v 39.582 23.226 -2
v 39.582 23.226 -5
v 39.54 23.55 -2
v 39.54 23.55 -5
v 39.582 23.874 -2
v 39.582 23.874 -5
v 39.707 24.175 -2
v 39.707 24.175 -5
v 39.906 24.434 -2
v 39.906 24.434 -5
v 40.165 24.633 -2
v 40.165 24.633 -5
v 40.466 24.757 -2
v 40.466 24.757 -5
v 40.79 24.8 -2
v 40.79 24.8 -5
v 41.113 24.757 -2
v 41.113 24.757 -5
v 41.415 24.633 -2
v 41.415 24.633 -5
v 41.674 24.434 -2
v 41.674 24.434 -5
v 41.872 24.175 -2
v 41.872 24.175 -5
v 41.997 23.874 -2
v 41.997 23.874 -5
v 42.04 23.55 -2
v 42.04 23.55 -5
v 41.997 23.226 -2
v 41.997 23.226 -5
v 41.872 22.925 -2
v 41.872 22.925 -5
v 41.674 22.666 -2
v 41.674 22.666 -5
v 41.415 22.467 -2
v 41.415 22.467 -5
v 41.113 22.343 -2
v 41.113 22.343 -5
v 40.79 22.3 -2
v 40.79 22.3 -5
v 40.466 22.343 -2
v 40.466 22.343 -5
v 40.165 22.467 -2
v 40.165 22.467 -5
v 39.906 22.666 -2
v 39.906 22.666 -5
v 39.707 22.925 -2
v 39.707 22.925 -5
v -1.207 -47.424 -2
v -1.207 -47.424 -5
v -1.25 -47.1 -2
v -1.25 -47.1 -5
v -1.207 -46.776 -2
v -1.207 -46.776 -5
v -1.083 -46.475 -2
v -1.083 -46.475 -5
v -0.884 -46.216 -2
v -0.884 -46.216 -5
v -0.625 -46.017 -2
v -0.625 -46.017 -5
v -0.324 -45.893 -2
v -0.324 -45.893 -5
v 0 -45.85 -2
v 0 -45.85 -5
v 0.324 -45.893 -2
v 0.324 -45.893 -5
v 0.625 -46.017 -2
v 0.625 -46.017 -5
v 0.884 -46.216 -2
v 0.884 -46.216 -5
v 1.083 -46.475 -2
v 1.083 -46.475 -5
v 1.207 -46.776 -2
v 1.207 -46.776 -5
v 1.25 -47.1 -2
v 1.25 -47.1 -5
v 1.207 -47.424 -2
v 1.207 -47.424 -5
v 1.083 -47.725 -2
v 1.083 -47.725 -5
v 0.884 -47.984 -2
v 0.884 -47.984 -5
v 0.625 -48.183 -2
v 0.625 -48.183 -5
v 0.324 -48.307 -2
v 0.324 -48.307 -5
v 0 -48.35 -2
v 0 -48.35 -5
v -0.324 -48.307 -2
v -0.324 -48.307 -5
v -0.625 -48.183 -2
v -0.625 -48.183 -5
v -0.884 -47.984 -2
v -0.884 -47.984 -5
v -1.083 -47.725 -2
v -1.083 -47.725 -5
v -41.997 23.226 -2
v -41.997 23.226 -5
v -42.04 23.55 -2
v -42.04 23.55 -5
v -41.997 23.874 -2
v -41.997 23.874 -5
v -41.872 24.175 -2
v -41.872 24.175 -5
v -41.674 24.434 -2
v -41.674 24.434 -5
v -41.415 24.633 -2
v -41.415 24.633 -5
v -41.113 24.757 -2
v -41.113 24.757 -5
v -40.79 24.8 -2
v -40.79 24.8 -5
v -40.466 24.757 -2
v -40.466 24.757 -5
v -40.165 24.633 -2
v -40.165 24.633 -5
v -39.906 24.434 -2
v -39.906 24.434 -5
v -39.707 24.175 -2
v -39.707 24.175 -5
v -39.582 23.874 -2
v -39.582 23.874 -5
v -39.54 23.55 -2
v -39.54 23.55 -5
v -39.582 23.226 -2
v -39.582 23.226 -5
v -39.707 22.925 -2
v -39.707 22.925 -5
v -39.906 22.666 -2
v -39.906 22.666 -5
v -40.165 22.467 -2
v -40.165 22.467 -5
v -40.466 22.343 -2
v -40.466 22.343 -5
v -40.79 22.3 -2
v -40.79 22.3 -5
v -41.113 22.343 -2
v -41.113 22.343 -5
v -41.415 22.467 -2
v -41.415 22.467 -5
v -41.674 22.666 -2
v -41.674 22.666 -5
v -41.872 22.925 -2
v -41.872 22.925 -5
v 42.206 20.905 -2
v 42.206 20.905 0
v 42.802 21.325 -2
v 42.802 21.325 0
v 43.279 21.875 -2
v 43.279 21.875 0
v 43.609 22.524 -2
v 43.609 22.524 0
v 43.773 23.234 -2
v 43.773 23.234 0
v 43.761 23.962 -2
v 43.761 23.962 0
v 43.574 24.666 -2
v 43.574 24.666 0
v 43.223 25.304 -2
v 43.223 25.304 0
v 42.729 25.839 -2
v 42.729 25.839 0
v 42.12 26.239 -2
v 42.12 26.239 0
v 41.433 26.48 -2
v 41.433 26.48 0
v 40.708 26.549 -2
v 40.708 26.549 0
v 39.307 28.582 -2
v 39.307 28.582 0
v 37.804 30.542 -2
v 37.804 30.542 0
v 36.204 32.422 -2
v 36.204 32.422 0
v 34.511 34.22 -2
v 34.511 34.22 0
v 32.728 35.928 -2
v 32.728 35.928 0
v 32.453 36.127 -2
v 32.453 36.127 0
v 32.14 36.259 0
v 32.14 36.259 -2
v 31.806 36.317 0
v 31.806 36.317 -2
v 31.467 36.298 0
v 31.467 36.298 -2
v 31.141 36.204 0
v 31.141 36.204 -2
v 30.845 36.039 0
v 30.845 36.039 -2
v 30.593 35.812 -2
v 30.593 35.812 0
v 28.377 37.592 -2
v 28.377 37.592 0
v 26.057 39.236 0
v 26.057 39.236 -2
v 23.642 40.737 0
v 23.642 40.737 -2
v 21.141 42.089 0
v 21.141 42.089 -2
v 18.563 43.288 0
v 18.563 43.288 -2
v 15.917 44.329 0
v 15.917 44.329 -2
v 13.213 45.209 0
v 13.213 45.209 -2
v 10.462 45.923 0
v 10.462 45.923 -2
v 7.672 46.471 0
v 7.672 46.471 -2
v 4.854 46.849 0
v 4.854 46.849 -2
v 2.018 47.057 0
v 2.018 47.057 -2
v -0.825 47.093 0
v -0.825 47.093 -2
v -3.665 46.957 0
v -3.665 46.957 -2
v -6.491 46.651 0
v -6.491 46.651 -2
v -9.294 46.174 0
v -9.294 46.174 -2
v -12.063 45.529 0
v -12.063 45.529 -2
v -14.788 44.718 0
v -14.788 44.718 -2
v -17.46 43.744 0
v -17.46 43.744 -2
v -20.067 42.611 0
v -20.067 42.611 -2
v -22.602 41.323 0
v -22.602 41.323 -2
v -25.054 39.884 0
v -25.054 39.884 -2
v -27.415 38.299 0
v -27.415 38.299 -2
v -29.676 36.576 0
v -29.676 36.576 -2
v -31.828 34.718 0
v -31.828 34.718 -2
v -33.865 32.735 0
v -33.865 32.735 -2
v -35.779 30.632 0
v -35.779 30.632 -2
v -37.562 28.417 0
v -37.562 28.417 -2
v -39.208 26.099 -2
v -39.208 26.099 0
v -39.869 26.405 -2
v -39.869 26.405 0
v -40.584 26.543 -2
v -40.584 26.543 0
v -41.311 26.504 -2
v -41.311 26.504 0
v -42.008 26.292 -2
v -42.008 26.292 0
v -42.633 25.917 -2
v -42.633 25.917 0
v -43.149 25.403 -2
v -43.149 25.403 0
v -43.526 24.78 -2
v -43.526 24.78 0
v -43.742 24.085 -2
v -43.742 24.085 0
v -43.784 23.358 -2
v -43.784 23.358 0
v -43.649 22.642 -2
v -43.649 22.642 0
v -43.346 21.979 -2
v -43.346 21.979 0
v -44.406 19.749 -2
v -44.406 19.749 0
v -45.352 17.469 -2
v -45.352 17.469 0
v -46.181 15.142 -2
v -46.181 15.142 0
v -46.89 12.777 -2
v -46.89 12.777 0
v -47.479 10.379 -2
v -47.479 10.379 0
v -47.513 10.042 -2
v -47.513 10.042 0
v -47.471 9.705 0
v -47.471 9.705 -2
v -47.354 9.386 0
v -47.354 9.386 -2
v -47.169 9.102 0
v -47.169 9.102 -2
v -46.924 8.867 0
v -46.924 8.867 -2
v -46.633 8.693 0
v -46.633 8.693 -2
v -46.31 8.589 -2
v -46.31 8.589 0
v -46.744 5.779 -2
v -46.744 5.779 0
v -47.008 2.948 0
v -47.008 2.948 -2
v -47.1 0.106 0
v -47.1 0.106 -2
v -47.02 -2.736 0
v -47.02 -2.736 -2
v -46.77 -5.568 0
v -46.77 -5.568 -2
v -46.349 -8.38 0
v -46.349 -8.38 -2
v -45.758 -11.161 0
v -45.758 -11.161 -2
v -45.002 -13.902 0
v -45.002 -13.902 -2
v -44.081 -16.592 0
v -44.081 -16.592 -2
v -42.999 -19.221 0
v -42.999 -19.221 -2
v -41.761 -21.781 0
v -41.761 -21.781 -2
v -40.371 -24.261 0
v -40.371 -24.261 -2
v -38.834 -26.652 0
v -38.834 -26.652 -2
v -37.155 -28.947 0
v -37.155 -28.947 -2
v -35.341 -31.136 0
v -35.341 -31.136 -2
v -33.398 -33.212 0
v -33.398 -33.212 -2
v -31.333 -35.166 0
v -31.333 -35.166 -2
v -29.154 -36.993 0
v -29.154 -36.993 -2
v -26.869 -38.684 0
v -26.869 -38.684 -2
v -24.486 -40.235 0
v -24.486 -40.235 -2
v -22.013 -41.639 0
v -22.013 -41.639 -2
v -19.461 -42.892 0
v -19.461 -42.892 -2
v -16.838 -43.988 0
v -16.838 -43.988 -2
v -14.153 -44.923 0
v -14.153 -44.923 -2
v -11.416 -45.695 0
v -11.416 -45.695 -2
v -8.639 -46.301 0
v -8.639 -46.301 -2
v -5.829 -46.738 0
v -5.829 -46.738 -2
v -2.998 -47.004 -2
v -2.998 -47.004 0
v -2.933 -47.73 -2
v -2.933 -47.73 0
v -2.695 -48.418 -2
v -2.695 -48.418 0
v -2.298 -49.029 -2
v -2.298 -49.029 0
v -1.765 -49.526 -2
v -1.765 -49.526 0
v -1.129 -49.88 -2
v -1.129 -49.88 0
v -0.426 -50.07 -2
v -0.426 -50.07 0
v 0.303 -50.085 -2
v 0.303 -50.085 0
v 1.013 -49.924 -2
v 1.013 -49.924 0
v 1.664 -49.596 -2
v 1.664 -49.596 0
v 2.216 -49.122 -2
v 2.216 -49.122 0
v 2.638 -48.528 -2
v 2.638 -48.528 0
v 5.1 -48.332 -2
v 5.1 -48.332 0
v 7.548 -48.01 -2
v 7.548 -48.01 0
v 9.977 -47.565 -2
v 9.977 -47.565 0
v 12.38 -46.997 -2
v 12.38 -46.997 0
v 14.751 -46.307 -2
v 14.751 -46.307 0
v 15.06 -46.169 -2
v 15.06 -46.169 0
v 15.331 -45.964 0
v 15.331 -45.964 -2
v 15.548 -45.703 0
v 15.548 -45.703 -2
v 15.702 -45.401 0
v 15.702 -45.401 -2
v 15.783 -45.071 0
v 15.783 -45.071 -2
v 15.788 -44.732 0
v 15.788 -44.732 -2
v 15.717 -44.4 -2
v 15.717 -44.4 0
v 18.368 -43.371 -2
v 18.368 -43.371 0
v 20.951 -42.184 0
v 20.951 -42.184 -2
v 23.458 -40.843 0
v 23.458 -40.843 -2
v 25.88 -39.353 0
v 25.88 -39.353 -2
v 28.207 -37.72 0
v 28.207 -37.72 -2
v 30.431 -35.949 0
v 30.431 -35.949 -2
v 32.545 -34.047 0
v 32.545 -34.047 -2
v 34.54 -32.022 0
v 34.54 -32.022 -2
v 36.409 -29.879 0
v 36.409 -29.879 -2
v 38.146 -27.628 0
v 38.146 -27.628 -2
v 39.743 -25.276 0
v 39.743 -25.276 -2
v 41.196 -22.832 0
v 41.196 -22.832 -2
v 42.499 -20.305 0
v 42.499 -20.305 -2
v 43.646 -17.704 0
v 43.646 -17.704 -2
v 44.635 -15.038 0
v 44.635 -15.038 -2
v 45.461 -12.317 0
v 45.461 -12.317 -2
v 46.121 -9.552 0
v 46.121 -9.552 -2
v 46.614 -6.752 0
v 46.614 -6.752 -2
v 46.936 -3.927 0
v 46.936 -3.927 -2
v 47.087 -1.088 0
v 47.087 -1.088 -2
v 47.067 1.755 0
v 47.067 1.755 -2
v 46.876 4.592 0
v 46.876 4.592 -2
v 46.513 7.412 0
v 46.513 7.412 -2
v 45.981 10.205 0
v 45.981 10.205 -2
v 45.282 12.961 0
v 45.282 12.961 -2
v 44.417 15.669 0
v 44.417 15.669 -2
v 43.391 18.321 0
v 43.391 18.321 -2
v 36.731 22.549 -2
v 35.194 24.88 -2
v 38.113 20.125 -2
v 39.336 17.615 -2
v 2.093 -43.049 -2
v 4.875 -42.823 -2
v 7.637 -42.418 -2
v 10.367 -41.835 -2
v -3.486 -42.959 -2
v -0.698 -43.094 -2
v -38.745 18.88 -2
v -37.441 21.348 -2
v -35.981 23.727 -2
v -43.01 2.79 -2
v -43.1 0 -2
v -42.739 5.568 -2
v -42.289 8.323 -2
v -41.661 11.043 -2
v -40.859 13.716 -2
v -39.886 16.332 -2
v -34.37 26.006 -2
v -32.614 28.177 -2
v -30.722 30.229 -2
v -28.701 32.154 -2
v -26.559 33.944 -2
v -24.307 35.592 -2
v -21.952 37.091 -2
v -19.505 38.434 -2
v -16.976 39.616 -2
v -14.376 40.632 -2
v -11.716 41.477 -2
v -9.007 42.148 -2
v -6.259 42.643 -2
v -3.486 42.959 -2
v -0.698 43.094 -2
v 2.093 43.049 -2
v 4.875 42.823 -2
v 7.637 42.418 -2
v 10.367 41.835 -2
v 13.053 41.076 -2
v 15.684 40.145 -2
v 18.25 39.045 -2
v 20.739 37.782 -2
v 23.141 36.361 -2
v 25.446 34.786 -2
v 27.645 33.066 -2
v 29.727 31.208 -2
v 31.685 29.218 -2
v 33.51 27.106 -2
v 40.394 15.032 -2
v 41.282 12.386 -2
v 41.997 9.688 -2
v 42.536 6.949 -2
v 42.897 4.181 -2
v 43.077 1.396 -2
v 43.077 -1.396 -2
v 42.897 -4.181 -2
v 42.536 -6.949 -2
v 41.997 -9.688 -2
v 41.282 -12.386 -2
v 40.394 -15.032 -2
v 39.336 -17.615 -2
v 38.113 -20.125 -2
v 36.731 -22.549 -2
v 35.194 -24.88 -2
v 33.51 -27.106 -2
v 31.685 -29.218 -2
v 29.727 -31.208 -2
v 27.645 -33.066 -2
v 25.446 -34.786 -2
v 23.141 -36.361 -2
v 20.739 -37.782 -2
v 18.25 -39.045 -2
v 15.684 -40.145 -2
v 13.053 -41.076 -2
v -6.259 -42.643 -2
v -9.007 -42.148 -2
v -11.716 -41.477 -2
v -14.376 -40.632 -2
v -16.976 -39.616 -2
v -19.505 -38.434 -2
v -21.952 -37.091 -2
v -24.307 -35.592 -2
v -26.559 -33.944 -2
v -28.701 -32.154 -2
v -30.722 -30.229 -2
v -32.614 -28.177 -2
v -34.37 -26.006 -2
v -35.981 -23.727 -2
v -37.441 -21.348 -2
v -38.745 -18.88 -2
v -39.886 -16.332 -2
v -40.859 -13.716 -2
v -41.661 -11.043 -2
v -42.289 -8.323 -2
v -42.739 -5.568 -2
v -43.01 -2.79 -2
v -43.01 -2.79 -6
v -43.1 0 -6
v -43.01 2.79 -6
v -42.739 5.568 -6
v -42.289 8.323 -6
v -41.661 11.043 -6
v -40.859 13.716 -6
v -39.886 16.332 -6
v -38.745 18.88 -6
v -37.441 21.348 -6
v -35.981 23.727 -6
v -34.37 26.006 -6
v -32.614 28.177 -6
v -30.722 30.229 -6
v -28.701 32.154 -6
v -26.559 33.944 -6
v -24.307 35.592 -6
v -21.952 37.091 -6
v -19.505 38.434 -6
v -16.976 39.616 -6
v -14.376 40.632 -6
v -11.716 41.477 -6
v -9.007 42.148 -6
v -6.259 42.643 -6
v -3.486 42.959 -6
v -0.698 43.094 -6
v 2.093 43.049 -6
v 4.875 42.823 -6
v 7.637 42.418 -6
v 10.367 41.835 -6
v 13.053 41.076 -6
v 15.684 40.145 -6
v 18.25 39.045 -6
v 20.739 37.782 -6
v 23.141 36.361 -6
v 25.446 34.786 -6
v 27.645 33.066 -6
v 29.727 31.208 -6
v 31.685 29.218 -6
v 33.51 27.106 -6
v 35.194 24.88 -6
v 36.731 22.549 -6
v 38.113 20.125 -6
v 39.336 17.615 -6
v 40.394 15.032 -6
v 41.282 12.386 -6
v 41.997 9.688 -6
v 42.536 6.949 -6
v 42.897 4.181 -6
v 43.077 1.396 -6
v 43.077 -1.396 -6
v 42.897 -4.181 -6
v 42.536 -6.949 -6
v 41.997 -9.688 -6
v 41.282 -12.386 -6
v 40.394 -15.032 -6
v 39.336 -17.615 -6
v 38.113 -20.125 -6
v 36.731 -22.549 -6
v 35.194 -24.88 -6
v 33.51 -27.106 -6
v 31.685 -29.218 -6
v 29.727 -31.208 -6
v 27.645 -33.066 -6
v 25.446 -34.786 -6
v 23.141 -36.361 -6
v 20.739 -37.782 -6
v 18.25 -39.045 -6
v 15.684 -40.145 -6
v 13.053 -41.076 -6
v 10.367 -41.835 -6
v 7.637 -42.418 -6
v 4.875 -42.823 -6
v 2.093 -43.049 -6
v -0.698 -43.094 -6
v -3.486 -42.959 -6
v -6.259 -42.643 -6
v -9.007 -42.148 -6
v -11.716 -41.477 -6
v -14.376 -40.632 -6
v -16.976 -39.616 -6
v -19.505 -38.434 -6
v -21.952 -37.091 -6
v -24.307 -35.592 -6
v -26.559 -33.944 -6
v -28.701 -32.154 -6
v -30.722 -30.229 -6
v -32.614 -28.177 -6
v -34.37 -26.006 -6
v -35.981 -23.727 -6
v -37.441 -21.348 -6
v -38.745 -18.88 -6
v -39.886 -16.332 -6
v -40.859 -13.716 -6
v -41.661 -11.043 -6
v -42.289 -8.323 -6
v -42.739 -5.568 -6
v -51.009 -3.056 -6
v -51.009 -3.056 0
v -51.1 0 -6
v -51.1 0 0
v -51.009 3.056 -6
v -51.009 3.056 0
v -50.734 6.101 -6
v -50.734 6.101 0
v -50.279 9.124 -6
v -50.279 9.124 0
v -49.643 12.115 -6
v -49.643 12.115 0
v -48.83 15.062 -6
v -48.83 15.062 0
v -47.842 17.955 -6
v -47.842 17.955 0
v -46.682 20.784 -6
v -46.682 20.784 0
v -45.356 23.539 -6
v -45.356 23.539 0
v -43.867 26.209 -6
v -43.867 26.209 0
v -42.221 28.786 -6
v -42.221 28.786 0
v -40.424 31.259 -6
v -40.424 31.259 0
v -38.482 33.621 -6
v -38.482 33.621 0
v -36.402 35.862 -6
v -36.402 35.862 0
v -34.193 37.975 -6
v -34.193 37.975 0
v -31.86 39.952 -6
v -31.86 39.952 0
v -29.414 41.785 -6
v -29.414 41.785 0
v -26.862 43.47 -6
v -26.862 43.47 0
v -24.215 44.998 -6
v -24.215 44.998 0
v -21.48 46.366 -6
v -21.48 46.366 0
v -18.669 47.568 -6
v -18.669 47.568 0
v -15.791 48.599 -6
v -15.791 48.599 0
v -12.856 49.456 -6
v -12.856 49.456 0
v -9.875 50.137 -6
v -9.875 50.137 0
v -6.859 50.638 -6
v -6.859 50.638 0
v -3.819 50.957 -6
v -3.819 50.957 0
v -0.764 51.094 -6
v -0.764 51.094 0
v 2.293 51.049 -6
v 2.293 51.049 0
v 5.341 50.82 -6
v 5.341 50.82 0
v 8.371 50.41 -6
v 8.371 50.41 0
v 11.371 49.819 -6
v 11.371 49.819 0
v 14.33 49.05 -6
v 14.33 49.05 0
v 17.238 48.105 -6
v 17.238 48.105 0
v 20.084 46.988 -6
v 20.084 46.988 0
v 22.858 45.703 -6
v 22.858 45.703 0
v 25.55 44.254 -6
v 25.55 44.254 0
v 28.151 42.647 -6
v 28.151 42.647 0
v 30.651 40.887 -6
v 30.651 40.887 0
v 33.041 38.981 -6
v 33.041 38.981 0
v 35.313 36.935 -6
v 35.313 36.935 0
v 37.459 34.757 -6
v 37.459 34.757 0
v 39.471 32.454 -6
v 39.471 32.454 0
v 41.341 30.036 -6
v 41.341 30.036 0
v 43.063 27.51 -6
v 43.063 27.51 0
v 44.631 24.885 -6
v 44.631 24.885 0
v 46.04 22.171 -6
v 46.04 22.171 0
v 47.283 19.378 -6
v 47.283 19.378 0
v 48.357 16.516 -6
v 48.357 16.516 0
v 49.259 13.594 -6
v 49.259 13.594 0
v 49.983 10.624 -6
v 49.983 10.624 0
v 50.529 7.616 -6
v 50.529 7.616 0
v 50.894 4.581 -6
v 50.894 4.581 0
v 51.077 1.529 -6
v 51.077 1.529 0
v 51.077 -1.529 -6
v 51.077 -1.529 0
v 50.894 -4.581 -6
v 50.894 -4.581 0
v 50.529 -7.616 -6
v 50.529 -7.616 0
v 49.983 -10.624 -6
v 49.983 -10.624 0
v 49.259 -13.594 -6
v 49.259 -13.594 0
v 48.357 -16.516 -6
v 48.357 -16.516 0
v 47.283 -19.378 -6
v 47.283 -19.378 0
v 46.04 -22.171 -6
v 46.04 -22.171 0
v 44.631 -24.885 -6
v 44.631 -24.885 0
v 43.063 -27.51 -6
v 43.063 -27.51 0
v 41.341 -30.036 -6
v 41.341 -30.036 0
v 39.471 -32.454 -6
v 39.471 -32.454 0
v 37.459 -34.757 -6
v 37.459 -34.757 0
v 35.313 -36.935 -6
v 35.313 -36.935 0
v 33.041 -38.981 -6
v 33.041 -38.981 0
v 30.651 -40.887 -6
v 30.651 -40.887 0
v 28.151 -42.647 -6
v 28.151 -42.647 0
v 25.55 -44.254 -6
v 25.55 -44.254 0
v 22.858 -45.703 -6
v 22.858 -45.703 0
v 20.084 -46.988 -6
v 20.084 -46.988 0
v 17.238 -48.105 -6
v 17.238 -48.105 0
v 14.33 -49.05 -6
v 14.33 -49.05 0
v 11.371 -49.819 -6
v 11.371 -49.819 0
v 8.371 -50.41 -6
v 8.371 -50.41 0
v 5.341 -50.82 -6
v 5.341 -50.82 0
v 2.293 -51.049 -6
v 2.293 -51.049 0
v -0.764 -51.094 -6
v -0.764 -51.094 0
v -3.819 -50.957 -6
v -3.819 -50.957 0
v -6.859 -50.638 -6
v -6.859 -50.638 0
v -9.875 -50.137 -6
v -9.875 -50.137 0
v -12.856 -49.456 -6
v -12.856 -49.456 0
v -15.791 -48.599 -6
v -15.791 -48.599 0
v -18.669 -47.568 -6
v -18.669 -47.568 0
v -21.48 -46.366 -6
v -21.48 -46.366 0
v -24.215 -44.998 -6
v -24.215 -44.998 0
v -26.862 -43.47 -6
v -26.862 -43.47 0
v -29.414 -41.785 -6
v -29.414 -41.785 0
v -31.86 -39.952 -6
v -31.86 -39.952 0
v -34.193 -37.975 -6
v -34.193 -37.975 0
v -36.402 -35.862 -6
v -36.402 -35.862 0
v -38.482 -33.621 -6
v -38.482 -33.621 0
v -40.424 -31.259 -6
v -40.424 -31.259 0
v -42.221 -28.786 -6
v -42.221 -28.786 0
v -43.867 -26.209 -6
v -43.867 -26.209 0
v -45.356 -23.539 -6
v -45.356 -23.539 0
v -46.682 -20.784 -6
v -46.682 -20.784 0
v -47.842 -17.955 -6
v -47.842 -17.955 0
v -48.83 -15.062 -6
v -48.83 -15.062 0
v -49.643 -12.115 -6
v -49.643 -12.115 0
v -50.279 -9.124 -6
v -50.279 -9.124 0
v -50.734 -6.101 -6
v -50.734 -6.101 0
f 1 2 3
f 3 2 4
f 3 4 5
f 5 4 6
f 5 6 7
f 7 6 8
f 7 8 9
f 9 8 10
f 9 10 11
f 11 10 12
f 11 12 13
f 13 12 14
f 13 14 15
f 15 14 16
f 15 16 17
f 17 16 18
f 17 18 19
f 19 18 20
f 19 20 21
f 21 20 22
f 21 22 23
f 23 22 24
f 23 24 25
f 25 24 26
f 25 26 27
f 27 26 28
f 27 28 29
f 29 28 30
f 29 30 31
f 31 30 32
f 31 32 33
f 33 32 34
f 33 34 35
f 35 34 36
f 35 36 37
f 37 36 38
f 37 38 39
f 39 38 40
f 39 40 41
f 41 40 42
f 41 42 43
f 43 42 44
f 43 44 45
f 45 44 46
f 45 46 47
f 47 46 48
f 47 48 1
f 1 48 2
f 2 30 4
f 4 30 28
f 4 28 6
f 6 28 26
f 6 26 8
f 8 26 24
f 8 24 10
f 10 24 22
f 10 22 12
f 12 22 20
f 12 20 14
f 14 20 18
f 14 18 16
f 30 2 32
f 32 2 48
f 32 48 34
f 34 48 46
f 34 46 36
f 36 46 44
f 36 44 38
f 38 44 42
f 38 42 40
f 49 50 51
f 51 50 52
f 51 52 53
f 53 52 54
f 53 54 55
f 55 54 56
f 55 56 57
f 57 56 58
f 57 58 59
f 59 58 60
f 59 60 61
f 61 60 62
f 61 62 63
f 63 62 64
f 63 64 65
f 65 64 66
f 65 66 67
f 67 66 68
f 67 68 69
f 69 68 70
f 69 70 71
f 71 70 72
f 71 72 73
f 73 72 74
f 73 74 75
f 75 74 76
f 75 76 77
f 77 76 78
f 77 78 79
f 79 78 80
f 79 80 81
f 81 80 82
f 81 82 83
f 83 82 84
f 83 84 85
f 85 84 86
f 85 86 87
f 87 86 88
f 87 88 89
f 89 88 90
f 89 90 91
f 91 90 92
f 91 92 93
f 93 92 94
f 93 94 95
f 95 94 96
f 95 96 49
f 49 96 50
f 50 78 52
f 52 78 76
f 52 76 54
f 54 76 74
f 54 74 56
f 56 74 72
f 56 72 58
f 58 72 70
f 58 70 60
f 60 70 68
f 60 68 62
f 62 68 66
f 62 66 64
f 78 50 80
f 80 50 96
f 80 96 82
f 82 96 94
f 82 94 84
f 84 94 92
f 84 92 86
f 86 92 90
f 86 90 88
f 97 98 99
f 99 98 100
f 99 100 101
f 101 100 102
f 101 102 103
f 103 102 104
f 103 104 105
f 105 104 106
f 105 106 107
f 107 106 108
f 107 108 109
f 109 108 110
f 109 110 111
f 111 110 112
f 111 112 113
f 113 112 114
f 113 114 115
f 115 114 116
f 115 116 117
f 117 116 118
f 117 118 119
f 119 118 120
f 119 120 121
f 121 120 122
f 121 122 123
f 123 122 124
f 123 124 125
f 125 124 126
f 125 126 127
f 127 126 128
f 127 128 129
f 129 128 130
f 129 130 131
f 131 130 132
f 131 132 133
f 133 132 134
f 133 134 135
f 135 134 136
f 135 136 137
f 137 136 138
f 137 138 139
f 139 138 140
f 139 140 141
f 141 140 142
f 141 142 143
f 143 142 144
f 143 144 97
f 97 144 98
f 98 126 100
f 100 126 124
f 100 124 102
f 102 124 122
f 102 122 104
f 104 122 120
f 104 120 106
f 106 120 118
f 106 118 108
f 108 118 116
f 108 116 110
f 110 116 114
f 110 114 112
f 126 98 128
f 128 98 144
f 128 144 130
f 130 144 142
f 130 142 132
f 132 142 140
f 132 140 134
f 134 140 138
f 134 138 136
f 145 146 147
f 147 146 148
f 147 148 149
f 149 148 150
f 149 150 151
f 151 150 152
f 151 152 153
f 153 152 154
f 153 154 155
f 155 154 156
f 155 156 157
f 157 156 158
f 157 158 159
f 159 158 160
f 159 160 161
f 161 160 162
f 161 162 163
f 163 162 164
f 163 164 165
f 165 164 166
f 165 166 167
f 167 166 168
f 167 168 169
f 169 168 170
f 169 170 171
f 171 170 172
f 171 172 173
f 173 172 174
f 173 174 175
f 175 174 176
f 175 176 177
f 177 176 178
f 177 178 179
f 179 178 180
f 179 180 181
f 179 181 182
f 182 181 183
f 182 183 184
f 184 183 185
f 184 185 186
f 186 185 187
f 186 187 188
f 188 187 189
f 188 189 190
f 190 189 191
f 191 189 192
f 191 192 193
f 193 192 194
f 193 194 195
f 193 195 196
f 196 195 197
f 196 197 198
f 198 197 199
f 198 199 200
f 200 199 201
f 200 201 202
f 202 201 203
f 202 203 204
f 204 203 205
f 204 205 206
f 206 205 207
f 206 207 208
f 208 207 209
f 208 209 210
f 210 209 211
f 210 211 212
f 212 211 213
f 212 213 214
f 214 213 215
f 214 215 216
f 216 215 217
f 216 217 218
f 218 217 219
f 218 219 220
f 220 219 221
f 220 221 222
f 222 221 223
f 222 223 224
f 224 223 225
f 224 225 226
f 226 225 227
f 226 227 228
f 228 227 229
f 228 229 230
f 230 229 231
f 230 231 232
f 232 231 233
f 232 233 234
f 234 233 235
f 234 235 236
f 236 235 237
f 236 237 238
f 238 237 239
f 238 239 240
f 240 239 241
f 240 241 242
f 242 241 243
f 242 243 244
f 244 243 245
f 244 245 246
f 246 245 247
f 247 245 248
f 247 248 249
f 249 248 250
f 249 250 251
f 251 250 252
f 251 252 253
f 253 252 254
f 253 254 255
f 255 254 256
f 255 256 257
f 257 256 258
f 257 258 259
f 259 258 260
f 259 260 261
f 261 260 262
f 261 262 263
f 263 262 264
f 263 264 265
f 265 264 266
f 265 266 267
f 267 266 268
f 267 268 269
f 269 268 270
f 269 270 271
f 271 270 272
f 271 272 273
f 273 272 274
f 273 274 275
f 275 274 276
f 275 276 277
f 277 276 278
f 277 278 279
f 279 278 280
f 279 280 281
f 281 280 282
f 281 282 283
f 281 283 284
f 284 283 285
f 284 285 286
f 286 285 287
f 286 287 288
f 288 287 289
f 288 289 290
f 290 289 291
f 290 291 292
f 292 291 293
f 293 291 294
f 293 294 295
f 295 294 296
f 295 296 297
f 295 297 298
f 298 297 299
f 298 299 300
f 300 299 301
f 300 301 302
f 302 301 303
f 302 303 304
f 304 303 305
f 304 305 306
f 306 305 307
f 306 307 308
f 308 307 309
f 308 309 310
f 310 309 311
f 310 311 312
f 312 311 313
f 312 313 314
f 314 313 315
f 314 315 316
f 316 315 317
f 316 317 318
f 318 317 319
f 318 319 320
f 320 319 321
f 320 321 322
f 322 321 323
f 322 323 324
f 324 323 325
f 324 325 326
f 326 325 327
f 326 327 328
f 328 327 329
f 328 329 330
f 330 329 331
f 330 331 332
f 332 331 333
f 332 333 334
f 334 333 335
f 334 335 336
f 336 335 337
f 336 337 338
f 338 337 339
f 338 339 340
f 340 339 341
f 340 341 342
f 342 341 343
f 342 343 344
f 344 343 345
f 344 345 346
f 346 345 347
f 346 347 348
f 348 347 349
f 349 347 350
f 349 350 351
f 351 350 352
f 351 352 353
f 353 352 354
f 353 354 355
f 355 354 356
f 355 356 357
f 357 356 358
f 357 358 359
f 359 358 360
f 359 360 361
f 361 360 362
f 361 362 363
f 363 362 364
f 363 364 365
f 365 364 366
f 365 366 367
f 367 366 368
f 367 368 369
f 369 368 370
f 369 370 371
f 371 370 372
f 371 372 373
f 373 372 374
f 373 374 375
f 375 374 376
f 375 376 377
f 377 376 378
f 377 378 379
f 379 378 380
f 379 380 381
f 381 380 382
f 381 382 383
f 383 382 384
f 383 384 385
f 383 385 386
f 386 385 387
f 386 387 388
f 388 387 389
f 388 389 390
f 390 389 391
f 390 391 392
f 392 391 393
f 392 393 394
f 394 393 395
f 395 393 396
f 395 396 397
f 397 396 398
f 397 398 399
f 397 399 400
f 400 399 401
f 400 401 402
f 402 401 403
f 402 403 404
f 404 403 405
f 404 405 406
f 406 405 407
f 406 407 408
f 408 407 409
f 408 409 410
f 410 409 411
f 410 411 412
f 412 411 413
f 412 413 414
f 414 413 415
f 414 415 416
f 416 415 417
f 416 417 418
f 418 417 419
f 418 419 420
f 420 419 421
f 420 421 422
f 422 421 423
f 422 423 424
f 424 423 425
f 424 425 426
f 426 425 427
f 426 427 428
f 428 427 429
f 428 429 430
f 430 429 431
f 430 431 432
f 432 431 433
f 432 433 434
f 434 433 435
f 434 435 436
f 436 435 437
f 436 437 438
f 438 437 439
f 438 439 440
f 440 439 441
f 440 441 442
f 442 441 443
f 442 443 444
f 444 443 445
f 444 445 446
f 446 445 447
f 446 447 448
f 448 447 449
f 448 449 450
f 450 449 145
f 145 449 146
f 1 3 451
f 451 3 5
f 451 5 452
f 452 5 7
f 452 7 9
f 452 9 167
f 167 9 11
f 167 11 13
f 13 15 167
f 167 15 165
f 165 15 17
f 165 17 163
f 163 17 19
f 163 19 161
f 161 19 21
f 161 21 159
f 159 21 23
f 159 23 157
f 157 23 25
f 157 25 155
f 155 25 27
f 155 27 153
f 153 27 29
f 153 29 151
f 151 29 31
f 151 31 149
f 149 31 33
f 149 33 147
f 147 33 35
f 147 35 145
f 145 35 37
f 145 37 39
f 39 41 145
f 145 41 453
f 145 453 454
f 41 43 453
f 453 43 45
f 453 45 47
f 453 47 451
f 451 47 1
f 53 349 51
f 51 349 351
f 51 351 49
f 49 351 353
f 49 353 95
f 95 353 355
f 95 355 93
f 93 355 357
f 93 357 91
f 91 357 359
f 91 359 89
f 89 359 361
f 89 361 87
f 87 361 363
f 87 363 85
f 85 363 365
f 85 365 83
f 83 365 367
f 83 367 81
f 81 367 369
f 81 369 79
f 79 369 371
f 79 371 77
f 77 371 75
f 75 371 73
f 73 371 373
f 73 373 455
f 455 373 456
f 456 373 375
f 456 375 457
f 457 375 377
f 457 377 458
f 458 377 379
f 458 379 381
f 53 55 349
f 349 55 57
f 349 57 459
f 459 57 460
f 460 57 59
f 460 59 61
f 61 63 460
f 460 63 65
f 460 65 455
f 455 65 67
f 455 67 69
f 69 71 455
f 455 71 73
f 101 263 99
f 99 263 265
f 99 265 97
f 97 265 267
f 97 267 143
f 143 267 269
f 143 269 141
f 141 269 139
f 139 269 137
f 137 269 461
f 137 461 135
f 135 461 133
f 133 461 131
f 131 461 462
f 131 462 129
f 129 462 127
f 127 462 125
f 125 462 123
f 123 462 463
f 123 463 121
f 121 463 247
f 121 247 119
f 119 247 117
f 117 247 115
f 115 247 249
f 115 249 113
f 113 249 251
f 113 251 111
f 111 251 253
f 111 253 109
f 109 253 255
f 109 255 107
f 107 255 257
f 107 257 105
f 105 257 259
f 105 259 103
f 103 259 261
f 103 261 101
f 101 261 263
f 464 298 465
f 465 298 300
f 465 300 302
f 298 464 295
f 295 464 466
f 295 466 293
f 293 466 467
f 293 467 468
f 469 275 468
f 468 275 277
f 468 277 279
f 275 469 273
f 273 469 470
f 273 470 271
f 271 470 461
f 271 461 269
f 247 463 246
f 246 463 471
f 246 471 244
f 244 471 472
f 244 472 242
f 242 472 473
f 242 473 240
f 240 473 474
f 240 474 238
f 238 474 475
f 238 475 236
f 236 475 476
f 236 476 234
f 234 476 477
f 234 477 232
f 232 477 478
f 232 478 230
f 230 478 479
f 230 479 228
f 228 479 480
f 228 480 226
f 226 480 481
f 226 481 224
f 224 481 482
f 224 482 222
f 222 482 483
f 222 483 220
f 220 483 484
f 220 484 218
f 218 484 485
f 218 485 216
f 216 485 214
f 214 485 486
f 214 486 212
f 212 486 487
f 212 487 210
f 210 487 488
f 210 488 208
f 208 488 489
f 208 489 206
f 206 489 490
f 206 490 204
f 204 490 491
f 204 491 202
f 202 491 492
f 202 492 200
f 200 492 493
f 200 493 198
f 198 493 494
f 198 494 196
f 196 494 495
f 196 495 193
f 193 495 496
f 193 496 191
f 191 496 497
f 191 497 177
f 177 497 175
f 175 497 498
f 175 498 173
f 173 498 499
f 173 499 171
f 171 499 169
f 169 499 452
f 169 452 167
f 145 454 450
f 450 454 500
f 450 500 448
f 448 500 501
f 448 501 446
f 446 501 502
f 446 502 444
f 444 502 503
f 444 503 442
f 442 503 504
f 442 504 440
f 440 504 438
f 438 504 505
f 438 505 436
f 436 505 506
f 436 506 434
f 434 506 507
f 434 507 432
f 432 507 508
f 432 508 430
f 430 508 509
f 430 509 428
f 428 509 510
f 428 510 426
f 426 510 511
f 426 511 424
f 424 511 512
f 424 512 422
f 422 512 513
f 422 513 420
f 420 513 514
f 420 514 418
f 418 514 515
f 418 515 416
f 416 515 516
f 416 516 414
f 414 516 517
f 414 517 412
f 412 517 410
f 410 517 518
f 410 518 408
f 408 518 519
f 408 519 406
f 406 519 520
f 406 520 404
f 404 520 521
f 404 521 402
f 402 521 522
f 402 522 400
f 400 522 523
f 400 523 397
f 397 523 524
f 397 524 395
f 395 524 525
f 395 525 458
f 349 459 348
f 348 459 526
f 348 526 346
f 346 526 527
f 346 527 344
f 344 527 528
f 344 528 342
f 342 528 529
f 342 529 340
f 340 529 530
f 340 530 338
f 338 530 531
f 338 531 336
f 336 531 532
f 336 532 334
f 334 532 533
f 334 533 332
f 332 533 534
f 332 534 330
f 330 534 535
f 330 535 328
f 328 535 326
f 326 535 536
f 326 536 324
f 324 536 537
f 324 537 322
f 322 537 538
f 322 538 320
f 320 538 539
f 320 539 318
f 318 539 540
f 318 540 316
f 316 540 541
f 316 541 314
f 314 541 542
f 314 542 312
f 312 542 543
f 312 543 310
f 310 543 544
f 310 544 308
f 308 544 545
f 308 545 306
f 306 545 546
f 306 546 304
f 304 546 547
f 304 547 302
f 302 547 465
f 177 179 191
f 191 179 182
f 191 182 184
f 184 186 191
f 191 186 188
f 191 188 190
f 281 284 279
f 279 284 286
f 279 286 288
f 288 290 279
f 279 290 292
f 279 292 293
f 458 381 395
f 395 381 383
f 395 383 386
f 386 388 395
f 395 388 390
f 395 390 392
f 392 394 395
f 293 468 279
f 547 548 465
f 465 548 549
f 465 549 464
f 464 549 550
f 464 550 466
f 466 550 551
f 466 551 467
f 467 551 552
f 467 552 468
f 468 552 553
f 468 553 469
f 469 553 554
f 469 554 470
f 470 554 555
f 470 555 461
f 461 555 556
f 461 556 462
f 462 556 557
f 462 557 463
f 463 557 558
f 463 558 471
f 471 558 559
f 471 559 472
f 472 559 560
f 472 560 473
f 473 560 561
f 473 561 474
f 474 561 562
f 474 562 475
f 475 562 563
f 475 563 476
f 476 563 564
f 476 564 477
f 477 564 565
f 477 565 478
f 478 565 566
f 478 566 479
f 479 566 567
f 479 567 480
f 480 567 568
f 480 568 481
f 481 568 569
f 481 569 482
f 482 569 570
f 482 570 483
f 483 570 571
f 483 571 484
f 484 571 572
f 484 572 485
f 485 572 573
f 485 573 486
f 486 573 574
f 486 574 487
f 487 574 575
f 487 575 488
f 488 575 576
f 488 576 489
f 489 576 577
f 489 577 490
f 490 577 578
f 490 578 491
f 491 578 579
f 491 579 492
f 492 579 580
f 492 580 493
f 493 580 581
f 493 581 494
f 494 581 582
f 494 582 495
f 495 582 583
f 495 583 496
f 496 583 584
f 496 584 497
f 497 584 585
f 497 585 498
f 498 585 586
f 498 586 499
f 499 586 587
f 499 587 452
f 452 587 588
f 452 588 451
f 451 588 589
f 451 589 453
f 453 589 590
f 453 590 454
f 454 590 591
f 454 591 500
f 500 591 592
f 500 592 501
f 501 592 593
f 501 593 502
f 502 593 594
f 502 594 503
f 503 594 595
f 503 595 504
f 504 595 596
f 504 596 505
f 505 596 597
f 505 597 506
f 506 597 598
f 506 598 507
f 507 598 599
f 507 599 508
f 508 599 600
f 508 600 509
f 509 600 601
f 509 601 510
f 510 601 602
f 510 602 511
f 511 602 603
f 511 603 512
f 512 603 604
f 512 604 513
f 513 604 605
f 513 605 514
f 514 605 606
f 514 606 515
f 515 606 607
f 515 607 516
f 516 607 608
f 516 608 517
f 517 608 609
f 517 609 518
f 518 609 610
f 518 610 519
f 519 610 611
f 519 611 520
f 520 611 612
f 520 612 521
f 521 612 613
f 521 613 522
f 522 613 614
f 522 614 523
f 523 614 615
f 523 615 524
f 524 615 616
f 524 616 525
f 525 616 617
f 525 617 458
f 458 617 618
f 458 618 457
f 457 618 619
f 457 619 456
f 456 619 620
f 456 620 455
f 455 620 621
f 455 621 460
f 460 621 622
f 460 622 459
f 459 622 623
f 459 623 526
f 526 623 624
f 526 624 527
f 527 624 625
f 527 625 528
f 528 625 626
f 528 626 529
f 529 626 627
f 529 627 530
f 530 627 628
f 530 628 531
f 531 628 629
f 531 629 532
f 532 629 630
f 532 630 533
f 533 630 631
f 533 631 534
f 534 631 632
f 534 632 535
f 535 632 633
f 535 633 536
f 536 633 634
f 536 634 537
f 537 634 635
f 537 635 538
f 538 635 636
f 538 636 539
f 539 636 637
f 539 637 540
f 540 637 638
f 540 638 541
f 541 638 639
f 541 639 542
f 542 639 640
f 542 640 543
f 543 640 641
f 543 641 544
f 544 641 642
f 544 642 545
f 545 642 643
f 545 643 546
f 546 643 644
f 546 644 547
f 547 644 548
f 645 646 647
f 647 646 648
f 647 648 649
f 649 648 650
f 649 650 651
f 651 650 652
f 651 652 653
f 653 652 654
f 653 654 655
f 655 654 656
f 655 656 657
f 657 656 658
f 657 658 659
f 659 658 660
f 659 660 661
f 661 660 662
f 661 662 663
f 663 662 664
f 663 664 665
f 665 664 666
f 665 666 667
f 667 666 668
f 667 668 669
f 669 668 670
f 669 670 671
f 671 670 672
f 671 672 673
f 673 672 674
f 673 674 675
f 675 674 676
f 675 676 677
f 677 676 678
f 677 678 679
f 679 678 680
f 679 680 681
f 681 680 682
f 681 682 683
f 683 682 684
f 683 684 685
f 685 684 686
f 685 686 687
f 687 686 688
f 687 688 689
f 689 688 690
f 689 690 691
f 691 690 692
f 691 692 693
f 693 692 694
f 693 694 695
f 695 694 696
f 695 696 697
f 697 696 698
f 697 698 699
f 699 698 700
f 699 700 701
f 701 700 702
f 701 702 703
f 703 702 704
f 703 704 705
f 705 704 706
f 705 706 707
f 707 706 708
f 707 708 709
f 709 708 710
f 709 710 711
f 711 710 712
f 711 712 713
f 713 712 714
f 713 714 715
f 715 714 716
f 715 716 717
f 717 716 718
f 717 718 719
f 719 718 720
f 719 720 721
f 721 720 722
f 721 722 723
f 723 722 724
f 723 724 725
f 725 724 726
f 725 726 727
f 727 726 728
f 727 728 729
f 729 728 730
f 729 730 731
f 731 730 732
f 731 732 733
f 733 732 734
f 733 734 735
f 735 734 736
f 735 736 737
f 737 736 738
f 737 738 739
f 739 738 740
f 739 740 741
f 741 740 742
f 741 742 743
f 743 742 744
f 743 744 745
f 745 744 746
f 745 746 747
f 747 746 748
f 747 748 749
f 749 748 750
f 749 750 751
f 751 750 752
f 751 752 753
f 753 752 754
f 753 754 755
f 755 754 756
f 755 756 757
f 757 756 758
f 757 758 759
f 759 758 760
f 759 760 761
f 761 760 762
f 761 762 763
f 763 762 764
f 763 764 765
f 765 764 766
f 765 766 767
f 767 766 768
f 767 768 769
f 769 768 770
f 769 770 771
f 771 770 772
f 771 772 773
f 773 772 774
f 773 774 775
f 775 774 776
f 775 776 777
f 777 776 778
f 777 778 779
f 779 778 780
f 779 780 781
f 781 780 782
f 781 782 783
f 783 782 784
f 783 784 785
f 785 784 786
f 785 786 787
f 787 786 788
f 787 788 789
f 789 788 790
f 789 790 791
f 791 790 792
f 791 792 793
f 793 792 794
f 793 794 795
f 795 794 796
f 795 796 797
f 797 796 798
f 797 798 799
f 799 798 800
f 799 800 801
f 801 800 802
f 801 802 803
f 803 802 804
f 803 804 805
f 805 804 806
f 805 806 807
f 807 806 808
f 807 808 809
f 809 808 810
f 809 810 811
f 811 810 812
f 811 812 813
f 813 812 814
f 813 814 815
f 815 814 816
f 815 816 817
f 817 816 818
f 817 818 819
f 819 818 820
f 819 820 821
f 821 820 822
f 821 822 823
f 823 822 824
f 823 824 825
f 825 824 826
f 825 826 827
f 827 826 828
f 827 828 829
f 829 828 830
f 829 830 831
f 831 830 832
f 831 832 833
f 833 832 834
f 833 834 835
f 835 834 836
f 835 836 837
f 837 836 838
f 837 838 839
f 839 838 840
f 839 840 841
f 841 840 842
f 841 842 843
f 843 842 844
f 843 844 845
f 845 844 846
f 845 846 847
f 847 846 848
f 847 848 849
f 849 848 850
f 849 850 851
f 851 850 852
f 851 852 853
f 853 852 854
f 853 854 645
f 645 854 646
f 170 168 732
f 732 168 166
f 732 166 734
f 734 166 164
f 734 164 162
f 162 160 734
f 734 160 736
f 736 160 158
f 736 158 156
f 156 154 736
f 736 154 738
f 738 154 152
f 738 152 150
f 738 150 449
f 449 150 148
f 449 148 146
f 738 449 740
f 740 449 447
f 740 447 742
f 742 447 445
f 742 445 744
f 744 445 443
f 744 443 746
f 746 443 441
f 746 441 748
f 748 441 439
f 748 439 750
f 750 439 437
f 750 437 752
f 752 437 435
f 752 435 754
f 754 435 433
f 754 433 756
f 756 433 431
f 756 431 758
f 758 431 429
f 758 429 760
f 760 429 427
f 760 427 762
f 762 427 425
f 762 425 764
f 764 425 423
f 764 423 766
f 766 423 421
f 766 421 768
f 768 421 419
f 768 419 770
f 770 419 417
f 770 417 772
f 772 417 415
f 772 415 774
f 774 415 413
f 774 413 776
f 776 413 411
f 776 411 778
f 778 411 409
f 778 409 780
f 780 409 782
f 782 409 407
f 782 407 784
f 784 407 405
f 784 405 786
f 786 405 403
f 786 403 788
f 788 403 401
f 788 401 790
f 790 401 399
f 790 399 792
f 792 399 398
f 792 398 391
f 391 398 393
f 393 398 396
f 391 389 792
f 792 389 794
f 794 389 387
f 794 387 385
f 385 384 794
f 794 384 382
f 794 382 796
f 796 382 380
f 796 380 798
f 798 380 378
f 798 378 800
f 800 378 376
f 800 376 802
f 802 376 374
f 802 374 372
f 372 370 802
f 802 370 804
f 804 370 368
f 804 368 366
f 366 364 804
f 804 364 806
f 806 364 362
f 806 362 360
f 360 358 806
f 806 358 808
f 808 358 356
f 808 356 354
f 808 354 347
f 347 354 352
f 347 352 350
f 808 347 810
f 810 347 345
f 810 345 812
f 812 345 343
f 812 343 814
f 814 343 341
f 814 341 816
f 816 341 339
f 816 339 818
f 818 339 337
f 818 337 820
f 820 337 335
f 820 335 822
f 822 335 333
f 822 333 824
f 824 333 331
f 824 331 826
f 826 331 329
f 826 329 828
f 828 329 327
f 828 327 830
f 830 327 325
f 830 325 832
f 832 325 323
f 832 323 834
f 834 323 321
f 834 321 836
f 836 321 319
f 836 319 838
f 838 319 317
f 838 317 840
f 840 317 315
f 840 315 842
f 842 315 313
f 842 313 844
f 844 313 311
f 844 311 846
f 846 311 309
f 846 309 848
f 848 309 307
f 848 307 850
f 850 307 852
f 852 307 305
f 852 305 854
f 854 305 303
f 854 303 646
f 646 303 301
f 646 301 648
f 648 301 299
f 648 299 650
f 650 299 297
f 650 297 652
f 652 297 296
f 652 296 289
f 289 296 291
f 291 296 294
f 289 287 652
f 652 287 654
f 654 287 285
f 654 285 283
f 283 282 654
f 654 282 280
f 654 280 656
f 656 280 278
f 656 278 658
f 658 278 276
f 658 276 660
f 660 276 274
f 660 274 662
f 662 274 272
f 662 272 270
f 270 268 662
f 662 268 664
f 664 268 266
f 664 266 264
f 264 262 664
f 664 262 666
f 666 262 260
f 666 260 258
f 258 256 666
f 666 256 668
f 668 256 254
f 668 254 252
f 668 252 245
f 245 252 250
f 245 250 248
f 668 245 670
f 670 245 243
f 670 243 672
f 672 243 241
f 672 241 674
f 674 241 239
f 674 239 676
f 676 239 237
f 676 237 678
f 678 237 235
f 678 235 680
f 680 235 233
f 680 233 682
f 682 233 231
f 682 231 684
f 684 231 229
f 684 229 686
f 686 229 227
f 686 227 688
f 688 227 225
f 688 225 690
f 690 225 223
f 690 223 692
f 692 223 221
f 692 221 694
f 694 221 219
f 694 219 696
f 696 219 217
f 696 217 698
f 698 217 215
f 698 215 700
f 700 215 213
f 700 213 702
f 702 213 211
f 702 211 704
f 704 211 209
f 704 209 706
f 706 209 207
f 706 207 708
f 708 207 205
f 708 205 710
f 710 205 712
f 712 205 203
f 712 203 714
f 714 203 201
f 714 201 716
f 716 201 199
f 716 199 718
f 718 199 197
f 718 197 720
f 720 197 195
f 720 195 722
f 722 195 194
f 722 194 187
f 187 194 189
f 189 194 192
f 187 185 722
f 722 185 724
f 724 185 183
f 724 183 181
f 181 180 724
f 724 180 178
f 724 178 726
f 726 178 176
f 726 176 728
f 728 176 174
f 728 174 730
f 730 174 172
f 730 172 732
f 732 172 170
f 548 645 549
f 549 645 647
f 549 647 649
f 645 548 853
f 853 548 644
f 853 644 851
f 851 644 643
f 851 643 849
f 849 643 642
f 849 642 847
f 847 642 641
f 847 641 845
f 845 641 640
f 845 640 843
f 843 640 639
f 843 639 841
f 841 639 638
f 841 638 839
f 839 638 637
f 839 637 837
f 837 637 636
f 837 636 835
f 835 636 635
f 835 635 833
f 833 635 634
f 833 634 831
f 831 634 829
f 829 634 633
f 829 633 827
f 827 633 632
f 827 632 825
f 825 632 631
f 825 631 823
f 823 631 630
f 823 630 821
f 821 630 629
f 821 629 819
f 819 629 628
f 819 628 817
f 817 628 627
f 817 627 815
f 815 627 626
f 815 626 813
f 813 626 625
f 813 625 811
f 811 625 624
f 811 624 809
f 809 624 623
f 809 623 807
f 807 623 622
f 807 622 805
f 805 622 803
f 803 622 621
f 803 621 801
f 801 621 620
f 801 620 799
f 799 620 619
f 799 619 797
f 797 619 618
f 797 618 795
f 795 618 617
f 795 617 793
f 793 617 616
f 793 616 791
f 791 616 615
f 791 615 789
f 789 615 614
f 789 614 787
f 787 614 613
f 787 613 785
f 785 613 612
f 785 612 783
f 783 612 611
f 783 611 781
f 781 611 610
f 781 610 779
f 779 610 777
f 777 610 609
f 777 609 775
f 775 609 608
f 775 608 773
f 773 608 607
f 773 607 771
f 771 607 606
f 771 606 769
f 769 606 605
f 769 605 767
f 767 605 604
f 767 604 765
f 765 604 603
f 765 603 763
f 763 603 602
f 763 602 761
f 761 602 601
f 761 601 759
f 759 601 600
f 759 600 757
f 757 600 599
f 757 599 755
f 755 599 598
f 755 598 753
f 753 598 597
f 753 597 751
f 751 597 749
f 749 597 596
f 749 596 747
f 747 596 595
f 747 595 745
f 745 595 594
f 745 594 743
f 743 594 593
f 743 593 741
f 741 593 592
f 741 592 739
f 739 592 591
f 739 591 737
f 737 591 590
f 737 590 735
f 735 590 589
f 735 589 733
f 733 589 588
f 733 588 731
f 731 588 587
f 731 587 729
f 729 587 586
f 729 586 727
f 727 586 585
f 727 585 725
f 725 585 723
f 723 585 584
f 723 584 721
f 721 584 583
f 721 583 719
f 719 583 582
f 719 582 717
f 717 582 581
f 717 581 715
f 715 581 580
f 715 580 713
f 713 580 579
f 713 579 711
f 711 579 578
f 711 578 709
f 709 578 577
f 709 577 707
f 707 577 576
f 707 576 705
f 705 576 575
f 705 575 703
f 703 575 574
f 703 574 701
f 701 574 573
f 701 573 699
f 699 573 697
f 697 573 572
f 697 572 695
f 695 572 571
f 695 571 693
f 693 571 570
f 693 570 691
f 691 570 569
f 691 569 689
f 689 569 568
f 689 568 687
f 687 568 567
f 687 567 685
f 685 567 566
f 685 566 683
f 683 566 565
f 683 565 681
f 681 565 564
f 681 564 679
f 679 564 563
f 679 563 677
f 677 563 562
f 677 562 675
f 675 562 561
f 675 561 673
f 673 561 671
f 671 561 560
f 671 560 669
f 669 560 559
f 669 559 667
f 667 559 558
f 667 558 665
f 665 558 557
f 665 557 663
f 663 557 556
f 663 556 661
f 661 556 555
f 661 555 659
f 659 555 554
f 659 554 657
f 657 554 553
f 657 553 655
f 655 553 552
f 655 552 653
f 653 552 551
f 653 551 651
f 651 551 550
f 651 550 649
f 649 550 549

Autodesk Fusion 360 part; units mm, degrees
sketch "草图1" plane through (0, 0, 0) normal (0, 0, 1) x (1, 0, 0)
  line L0 (0.9, -43.0906) -> (0.9, -43.1)
  arc A0 (2.5554, -45.5283) -> (2.6381, -48.5283) centre (0, -47.1) ccw
  line L1 (28.4627, -32.3648) -> (28.4702, -32.3737)
  arc A1 (14.7507, -46.3074) -> (13.8402, -43.4489) centre (14.2954, -44.8782) ccw
  line L2 (30.5781, -30.3742) -> (30.6917, -30.5096)
  arc A2 (2.6381, -48.5283) -> (14.7507, -46.3074) centre (0, 0) ccw
  line L3 (42.2601, -8.467) -> (42.2716, -8.469)
  circle A3 centre (0, 0) radius 43.1
  line L4 (11.0158, 41.6685) -> (11.0763, 41.8346)
  arc A4 (-47.4788, 10.3792) -> (-44.548, 9.7385) centre (-46.0134, 10.0589) ccw
  circle A5 centre (40.7898, 23.55) radius 1.25
  line L5 (-11.0158, 41.6685) -> (-11.0763, 41.8346)
  line L6 (-36.8676, 22.3247) -> (-36.8757, 22.3294)
  line L7 (36.8676, 22.3247) -> (36.8757, 22.3294)
  line L8 (-13.7974, 40.8319) -> (-13.8014, 40.8428)
  circle A6 centre (0, 0) radius 47.1 construction
  line L9 (41.5939, -11.2943) -> (41.768, -11.325)
  arc A7 (38.151, 24.9772) -> (30.7078, 33.7104) centre (0, 0) ccw
  arc A8 (-43.3459, 21.9795) -> (-47.4788, 10.3792) centre (0, 0) ccw
  line L10 (-41.5939, -11.2943) -> (-41.768, -11.325)
  line L11 (-28.4627, -32.3648) -> (-28.4702, -32.3737)
  line L12 (-37.7676, 20.7659) -> (-37.7757, 20.7706)
  arc A9 (32.728, 35.9282) -> (30.7078, 33.7104) centre (31.7179, 34.8193) ccw
  arc A10 (-40.7064, 20.5512) -> (-44.548, 9.7385) centre (0, 0) ccw
  circle A11 centre (0, 0) radius 44.72 construction
  arc A12 (40.7077, 26.5489) -> (32.728, 35.9282) centre (0, 0) ccw
  line L13 (-0.9, -43.0906) -> (-0.9, -43.1)
  arc A13 (-40.7064, 20.5512) -> (-43.3459, 21.9795) centre (-40.7898, 23.55) ccw
  arc A14 (38.151, 24.9772) -> (40.7077, 26.5489) centre (40.7898, 23.55) ccw
  circle A15 centre (0, 0) radius 51.1
  line L14 (13.7974, 40.8319) -> (13.8014, 40.8428)
  circle A16 centre (0, -47.1) radius 1.25
  line L15 (-30.5781, -30.3742) -> (-30.6917, -30.5096)
  line L16 (-42.2601, -8.467) -> (-42.2716, -8.469)
  arc A17 (2.5554, -45.5283) -> (13.8402, -43.4489) centre (0, 0) ccw
  circle A18 centre (-40.7898, 23.55) radius 1.25
  line L17 (37.7676, 20.7659) -> (37.7757, 20.7706)
  line L18 (-15.6751, 9.05) -> (-16.3679, 9.45) construction
  line L19 (-37.3257, 21.55) -> (-41.5692, 24) construction
  line L20 (43.1, 0) -> (48, 0) construction
  line L21 (0, -43.1) -> (0, -51.1) construction
  circle A19 centre (0, 0) radius 47.1
  dimension "d17" = 1.8
  dimension "d22" = 6
  dimension "d23" = 3
  dimension "d24" = 2.5
  dimension "d25" = 2.5
  dimension "d26" = 2.5
  dimension "d27" = 86.2
  dimension "d28" = 102.2
extrude "拉伸4" add sketch "草图1" against normal blind 6 contours A0 A1 A16 A17 A19 | A0 A1 A4 A7 A9 A10 A13 A14 A17 A19 | A0 A1 A2 A16 A19 | A4 A10 A13 A18 A19 | A4 A8 A13 A18 A19 | A16 A19 | A16 A19 | A18 A19 | A18 A19 | A5 A9 A12 A14 A19 | A5 A7 A9 A14 A19 | A5 A19 | A5 A19 | A15
extrude "拉伸5" cut sketch "草图1" against normal blind 2 contours A0 A1 A16 A17 A19 | A0 A1 A4 A7 A9 A10 A13 A14 A17 A19 | A0 A1 A2 A16 A19 | A4 A10 A13 A18 A19 | A4 A8 A13 A18 A19 | A16 A19 | A16 A19 | A18 A19 | A18 A19 | A5 A9 A12 A14 A19 | A5 A7 A9 A14 A19 | A5 A19 | A5 A19
extrude "拉伸6" cut sketch "草图1" against normal blind 5 contours A16 A19 | A16 A19 | A18 A19 | A18 A19 | A5 A19 | A5 A19
